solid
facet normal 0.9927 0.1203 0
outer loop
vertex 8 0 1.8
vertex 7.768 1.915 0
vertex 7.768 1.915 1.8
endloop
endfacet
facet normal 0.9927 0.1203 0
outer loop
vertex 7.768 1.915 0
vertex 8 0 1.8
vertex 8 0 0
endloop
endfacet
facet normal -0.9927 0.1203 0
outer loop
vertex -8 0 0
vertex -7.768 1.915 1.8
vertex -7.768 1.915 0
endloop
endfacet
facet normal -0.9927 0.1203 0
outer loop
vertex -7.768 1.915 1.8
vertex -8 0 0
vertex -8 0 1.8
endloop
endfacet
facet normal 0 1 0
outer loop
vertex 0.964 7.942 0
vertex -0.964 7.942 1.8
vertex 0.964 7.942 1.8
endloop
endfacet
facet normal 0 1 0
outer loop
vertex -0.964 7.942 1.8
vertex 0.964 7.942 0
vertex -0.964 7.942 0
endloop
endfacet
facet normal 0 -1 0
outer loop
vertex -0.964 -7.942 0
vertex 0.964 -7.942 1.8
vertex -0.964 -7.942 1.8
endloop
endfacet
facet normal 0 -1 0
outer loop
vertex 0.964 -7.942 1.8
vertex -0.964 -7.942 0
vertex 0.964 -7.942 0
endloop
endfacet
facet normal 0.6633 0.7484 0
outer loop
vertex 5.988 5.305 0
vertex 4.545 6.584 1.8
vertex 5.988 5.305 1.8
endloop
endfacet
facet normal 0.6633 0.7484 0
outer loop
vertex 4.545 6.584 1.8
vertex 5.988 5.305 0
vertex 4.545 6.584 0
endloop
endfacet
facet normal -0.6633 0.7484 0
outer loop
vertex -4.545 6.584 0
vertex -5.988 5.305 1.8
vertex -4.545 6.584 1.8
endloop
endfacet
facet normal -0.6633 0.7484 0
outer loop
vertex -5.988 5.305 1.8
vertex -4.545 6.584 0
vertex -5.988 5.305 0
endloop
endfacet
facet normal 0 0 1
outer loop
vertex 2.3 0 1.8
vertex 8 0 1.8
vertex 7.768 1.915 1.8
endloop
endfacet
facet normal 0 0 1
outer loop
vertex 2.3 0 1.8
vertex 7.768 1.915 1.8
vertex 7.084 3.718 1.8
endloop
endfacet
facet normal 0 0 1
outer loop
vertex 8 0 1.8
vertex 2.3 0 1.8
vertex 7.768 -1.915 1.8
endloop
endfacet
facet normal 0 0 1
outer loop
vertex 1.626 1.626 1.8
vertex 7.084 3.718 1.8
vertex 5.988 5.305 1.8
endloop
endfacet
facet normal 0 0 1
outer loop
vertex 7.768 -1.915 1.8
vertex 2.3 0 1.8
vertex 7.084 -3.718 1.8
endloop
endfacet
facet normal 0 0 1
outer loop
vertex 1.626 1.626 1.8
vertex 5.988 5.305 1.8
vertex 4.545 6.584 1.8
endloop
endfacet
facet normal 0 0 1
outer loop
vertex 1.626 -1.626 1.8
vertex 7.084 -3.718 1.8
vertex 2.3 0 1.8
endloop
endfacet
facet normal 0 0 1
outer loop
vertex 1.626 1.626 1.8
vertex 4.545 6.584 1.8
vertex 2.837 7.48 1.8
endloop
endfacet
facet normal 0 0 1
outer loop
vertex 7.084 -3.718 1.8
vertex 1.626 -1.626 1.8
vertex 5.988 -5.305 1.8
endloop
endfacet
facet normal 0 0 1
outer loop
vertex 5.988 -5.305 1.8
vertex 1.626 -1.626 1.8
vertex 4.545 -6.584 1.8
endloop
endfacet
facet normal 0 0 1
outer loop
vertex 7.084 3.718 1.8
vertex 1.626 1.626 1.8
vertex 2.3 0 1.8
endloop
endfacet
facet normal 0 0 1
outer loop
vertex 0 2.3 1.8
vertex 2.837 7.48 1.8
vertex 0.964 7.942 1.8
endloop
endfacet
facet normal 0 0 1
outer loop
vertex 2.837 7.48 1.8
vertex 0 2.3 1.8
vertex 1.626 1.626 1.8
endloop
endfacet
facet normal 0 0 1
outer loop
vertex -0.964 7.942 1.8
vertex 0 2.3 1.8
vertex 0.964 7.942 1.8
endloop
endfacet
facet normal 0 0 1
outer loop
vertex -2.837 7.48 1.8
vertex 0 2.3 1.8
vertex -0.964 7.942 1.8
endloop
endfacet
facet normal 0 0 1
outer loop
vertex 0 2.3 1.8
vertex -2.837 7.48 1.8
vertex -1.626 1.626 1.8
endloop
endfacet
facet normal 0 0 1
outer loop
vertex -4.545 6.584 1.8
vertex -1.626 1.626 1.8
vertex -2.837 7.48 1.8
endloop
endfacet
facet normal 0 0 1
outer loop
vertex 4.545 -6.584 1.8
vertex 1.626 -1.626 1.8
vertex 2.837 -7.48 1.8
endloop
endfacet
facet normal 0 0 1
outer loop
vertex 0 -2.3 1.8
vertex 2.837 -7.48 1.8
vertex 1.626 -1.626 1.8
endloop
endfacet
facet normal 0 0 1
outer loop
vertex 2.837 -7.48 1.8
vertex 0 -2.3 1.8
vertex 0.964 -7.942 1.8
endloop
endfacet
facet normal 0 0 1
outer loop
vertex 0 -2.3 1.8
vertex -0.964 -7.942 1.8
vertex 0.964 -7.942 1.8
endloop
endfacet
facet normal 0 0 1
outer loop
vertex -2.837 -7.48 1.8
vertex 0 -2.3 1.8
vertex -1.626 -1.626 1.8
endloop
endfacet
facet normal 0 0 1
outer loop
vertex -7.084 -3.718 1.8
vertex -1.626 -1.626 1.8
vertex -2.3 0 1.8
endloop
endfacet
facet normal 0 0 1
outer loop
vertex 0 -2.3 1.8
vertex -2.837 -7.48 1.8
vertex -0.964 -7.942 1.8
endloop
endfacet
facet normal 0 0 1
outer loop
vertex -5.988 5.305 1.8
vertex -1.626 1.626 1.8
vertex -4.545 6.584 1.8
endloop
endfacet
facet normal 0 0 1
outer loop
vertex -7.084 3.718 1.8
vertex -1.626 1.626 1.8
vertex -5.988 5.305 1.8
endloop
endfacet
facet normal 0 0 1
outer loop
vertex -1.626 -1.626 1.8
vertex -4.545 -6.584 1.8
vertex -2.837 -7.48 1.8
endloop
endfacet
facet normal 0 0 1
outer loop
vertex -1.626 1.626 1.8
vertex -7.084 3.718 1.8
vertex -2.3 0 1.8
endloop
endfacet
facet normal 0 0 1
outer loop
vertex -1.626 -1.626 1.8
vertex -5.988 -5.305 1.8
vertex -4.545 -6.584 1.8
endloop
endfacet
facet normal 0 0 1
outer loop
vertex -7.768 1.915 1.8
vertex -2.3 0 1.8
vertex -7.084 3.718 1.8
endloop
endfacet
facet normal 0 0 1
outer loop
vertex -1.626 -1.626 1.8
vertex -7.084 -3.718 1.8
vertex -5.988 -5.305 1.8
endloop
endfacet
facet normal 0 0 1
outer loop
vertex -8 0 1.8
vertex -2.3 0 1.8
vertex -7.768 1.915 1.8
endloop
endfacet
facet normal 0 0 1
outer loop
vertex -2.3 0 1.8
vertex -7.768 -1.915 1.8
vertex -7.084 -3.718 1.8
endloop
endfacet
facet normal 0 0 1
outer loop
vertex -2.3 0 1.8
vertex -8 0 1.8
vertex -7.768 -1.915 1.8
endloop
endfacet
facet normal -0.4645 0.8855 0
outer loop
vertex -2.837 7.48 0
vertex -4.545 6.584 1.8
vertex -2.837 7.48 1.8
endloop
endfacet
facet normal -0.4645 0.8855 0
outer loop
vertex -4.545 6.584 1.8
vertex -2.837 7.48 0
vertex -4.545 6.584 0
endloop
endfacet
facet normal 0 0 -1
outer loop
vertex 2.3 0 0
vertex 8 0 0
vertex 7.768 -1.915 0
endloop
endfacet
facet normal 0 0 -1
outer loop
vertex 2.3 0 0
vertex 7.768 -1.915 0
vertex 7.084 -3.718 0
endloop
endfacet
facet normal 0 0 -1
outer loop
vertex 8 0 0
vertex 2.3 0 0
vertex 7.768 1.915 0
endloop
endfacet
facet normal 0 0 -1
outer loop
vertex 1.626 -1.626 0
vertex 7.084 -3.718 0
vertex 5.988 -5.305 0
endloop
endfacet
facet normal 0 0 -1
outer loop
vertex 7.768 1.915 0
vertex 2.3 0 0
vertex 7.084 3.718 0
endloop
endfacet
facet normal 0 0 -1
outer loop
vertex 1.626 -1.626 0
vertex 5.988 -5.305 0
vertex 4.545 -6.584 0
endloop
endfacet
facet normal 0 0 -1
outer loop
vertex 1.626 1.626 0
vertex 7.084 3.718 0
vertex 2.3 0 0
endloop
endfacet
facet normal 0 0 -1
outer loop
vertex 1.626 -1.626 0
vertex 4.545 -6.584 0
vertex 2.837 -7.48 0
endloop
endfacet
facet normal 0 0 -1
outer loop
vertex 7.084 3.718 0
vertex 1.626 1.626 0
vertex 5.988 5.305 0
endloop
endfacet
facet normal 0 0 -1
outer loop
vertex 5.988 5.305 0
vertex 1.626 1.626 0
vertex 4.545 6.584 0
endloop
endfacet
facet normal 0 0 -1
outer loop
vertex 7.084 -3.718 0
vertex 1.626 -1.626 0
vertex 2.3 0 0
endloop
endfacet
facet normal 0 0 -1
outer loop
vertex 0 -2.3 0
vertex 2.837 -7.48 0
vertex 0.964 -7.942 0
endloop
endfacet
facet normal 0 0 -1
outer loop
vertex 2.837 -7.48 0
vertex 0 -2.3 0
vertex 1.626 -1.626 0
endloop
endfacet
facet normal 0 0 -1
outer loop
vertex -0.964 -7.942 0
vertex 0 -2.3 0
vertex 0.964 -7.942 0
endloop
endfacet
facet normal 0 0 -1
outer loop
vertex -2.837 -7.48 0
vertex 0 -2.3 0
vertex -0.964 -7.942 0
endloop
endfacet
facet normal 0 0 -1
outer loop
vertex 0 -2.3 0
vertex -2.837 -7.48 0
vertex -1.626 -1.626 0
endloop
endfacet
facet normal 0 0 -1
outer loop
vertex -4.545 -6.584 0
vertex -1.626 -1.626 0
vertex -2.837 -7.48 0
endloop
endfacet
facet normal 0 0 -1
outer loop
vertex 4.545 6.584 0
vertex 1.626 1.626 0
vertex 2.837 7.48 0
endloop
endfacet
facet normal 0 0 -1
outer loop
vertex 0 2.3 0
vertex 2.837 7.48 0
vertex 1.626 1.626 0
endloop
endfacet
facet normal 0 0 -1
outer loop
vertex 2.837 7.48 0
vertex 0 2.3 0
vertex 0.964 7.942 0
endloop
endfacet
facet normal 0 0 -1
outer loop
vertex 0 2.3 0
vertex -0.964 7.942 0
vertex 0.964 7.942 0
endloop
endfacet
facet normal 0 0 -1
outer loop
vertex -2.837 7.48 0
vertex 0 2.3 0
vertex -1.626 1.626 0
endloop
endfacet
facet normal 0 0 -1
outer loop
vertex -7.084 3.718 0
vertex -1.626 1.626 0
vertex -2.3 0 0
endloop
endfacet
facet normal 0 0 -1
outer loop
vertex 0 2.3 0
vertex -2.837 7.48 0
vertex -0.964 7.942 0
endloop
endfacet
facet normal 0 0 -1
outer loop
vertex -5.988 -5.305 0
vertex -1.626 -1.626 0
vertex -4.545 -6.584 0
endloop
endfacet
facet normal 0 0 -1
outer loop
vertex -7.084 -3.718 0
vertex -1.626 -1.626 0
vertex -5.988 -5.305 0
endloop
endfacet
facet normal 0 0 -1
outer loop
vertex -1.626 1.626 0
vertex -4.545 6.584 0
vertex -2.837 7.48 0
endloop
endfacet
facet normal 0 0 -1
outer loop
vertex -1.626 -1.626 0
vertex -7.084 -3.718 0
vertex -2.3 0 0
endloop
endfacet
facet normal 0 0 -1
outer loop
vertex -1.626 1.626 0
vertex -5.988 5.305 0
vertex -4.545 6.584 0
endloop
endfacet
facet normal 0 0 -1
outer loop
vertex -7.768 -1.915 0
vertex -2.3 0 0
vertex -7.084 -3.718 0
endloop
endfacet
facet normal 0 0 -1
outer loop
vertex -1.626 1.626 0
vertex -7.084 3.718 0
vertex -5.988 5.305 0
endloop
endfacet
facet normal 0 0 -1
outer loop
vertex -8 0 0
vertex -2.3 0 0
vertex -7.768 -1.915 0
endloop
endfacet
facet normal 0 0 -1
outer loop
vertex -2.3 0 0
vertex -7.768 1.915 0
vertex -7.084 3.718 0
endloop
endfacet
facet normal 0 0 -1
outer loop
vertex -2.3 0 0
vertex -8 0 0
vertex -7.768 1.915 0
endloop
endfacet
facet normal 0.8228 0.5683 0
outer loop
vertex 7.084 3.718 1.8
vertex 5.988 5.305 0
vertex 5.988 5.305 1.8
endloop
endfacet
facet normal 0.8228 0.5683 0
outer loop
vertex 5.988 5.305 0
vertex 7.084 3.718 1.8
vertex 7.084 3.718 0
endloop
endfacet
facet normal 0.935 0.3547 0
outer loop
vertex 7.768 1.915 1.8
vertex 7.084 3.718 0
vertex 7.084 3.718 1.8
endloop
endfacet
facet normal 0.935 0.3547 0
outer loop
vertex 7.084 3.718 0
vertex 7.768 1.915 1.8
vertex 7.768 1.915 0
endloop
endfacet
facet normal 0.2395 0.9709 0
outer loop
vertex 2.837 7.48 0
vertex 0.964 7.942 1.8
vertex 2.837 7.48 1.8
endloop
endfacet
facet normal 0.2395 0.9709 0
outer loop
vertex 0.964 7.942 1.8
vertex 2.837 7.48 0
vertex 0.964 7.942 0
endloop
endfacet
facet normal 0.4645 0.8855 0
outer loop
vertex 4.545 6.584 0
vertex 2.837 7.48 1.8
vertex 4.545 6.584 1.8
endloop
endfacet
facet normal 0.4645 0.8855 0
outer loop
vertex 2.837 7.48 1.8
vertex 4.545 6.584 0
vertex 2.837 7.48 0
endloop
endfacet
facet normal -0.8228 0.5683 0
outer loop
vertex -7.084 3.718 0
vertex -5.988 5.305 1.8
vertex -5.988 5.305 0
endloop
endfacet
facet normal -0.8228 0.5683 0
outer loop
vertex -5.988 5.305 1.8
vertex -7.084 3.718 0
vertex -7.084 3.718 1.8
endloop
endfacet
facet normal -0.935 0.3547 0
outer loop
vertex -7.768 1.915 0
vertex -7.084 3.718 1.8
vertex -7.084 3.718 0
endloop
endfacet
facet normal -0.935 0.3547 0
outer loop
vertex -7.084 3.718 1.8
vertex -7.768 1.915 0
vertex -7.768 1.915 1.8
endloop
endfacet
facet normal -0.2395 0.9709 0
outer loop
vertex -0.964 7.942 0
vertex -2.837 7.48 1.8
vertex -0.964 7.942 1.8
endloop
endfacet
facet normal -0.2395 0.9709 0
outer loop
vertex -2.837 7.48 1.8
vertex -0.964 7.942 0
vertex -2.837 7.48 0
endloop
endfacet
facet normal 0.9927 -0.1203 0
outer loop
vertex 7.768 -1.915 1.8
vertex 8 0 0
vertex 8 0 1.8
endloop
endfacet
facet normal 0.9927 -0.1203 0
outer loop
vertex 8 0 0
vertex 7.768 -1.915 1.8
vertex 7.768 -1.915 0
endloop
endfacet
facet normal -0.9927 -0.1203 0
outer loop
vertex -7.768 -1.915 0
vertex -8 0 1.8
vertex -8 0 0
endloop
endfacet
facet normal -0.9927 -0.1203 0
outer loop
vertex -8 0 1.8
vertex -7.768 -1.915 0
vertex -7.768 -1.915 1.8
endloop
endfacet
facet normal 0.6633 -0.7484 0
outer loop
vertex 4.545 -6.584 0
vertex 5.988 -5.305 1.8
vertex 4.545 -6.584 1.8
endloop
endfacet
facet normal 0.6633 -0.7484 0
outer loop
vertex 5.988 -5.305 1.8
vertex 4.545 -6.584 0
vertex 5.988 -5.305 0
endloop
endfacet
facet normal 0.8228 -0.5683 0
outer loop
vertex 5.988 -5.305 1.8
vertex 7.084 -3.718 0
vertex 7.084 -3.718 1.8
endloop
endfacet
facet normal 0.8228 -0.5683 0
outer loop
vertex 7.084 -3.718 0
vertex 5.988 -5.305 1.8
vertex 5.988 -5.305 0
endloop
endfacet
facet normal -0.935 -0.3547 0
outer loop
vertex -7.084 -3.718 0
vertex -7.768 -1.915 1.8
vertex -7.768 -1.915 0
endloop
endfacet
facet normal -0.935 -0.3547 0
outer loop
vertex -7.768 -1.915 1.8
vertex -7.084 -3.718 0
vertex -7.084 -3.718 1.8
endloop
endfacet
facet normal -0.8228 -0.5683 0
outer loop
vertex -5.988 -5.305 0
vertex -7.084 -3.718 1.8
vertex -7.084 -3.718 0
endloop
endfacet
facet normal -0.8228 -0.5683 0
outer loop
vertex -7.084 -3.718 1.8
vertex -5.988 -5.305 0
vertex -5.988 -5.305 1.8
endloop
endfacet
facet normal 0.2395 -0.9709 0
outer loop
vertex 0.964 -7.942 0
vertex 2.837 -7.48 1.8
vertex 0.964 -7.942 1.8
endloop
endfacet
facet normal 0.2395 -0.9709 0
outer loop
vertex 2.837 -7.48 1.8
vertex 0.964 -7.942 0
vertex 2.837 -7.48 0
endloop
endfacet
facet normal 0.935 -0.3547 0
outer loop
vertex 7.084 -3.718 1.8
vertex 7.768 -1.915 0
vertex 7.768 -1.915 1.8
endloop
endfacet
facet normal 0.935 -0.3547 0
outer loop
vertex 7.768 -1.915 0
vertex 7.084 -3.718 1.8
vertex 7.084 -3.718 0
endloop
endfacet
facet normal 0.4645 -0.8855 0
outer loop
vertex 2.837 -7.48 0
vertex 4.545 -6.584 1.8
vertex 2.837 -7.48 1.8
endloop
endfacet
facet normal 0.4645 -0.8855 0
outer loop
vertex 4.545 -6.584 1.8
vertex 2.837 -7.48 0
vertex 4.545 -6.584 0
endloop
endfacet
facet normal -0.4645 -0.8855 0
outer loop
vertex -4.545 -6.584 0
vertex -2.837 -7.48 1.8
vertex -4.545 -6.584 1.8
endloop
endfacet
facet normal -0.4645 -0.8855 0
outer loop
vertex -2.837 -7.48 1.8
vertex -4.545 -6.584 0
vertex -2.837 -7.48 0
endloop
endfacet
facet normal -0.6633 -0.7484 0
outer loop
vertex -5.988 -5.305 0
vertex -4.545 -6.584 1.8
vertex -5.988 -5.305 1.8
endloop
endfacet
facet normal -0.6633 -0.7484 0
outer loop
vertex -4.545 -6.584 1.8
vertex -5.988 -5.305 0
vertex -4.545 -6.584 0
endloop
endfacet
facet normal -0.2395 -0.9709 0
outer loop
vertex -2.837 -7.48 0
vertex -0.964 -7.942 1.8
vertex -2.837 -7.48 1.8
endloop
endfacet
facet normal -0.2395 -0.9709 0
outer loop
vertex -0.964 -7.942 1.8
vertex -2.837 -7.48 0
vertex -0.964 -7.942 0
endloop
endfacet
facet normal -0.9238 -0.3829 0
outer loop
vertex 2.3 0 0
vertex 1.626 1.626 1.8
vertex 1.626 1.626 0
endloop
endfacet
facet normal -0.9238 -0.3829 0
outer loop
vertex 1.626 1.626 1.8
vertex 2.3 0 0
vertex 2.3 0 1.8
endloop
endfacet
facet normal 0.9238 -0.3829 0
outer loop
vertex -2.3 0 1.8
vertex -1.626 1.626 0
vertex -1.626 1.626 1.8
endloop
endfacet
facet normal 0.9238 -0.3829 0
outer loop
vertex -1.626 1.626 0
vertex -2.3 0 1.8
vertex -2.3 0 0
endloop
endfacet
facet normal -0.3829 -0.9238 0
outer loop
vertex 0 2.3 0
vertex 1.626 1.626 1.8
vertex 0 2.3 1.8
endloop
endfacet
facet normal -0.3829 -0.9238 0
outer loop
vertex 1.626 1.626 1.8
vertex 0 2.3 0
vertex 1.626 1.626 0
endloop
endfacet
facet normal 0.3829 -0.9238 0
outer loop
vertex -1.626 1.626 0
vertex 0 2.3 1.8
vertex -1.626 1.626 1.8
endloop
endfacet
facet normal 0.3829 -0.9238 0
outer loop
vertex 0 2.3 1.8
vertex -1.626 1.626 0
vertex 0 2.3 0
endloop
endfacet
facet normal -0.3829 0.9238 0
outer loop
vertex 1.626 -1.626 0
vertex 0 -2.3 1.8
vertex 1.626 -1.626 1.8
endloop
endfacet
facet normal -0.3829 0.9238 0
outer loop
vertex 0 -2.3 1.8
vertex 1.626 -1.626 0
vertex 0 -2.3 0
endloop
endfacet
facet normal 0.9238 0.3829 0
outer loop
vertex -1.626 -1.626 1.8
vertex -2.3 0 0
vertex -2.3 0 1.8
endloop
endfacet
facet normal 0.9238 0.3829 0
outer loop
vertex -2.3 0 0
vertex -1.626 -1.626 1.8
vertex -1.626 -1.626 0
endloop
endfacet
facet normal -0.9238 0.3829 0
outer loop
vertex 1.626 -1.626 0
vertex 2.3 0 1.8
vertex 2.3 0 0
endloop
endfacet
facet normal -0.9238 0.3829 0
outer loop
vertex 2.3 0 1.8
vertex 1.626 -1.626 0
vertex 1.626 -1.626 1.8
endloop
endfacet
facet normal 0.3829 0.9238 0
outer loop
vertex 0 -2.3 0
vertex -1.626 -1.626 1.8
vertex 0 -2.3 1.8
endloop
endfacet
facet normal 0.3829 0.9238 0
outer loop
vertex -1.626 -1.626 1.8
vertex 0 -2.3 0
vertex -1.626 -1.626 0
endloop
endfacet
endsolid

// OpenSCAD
difference(){
    cylinder(r=8,h=1.8);
    translate([0,0,-.1]) cylinder(r=2.30,h=4.2);
}
